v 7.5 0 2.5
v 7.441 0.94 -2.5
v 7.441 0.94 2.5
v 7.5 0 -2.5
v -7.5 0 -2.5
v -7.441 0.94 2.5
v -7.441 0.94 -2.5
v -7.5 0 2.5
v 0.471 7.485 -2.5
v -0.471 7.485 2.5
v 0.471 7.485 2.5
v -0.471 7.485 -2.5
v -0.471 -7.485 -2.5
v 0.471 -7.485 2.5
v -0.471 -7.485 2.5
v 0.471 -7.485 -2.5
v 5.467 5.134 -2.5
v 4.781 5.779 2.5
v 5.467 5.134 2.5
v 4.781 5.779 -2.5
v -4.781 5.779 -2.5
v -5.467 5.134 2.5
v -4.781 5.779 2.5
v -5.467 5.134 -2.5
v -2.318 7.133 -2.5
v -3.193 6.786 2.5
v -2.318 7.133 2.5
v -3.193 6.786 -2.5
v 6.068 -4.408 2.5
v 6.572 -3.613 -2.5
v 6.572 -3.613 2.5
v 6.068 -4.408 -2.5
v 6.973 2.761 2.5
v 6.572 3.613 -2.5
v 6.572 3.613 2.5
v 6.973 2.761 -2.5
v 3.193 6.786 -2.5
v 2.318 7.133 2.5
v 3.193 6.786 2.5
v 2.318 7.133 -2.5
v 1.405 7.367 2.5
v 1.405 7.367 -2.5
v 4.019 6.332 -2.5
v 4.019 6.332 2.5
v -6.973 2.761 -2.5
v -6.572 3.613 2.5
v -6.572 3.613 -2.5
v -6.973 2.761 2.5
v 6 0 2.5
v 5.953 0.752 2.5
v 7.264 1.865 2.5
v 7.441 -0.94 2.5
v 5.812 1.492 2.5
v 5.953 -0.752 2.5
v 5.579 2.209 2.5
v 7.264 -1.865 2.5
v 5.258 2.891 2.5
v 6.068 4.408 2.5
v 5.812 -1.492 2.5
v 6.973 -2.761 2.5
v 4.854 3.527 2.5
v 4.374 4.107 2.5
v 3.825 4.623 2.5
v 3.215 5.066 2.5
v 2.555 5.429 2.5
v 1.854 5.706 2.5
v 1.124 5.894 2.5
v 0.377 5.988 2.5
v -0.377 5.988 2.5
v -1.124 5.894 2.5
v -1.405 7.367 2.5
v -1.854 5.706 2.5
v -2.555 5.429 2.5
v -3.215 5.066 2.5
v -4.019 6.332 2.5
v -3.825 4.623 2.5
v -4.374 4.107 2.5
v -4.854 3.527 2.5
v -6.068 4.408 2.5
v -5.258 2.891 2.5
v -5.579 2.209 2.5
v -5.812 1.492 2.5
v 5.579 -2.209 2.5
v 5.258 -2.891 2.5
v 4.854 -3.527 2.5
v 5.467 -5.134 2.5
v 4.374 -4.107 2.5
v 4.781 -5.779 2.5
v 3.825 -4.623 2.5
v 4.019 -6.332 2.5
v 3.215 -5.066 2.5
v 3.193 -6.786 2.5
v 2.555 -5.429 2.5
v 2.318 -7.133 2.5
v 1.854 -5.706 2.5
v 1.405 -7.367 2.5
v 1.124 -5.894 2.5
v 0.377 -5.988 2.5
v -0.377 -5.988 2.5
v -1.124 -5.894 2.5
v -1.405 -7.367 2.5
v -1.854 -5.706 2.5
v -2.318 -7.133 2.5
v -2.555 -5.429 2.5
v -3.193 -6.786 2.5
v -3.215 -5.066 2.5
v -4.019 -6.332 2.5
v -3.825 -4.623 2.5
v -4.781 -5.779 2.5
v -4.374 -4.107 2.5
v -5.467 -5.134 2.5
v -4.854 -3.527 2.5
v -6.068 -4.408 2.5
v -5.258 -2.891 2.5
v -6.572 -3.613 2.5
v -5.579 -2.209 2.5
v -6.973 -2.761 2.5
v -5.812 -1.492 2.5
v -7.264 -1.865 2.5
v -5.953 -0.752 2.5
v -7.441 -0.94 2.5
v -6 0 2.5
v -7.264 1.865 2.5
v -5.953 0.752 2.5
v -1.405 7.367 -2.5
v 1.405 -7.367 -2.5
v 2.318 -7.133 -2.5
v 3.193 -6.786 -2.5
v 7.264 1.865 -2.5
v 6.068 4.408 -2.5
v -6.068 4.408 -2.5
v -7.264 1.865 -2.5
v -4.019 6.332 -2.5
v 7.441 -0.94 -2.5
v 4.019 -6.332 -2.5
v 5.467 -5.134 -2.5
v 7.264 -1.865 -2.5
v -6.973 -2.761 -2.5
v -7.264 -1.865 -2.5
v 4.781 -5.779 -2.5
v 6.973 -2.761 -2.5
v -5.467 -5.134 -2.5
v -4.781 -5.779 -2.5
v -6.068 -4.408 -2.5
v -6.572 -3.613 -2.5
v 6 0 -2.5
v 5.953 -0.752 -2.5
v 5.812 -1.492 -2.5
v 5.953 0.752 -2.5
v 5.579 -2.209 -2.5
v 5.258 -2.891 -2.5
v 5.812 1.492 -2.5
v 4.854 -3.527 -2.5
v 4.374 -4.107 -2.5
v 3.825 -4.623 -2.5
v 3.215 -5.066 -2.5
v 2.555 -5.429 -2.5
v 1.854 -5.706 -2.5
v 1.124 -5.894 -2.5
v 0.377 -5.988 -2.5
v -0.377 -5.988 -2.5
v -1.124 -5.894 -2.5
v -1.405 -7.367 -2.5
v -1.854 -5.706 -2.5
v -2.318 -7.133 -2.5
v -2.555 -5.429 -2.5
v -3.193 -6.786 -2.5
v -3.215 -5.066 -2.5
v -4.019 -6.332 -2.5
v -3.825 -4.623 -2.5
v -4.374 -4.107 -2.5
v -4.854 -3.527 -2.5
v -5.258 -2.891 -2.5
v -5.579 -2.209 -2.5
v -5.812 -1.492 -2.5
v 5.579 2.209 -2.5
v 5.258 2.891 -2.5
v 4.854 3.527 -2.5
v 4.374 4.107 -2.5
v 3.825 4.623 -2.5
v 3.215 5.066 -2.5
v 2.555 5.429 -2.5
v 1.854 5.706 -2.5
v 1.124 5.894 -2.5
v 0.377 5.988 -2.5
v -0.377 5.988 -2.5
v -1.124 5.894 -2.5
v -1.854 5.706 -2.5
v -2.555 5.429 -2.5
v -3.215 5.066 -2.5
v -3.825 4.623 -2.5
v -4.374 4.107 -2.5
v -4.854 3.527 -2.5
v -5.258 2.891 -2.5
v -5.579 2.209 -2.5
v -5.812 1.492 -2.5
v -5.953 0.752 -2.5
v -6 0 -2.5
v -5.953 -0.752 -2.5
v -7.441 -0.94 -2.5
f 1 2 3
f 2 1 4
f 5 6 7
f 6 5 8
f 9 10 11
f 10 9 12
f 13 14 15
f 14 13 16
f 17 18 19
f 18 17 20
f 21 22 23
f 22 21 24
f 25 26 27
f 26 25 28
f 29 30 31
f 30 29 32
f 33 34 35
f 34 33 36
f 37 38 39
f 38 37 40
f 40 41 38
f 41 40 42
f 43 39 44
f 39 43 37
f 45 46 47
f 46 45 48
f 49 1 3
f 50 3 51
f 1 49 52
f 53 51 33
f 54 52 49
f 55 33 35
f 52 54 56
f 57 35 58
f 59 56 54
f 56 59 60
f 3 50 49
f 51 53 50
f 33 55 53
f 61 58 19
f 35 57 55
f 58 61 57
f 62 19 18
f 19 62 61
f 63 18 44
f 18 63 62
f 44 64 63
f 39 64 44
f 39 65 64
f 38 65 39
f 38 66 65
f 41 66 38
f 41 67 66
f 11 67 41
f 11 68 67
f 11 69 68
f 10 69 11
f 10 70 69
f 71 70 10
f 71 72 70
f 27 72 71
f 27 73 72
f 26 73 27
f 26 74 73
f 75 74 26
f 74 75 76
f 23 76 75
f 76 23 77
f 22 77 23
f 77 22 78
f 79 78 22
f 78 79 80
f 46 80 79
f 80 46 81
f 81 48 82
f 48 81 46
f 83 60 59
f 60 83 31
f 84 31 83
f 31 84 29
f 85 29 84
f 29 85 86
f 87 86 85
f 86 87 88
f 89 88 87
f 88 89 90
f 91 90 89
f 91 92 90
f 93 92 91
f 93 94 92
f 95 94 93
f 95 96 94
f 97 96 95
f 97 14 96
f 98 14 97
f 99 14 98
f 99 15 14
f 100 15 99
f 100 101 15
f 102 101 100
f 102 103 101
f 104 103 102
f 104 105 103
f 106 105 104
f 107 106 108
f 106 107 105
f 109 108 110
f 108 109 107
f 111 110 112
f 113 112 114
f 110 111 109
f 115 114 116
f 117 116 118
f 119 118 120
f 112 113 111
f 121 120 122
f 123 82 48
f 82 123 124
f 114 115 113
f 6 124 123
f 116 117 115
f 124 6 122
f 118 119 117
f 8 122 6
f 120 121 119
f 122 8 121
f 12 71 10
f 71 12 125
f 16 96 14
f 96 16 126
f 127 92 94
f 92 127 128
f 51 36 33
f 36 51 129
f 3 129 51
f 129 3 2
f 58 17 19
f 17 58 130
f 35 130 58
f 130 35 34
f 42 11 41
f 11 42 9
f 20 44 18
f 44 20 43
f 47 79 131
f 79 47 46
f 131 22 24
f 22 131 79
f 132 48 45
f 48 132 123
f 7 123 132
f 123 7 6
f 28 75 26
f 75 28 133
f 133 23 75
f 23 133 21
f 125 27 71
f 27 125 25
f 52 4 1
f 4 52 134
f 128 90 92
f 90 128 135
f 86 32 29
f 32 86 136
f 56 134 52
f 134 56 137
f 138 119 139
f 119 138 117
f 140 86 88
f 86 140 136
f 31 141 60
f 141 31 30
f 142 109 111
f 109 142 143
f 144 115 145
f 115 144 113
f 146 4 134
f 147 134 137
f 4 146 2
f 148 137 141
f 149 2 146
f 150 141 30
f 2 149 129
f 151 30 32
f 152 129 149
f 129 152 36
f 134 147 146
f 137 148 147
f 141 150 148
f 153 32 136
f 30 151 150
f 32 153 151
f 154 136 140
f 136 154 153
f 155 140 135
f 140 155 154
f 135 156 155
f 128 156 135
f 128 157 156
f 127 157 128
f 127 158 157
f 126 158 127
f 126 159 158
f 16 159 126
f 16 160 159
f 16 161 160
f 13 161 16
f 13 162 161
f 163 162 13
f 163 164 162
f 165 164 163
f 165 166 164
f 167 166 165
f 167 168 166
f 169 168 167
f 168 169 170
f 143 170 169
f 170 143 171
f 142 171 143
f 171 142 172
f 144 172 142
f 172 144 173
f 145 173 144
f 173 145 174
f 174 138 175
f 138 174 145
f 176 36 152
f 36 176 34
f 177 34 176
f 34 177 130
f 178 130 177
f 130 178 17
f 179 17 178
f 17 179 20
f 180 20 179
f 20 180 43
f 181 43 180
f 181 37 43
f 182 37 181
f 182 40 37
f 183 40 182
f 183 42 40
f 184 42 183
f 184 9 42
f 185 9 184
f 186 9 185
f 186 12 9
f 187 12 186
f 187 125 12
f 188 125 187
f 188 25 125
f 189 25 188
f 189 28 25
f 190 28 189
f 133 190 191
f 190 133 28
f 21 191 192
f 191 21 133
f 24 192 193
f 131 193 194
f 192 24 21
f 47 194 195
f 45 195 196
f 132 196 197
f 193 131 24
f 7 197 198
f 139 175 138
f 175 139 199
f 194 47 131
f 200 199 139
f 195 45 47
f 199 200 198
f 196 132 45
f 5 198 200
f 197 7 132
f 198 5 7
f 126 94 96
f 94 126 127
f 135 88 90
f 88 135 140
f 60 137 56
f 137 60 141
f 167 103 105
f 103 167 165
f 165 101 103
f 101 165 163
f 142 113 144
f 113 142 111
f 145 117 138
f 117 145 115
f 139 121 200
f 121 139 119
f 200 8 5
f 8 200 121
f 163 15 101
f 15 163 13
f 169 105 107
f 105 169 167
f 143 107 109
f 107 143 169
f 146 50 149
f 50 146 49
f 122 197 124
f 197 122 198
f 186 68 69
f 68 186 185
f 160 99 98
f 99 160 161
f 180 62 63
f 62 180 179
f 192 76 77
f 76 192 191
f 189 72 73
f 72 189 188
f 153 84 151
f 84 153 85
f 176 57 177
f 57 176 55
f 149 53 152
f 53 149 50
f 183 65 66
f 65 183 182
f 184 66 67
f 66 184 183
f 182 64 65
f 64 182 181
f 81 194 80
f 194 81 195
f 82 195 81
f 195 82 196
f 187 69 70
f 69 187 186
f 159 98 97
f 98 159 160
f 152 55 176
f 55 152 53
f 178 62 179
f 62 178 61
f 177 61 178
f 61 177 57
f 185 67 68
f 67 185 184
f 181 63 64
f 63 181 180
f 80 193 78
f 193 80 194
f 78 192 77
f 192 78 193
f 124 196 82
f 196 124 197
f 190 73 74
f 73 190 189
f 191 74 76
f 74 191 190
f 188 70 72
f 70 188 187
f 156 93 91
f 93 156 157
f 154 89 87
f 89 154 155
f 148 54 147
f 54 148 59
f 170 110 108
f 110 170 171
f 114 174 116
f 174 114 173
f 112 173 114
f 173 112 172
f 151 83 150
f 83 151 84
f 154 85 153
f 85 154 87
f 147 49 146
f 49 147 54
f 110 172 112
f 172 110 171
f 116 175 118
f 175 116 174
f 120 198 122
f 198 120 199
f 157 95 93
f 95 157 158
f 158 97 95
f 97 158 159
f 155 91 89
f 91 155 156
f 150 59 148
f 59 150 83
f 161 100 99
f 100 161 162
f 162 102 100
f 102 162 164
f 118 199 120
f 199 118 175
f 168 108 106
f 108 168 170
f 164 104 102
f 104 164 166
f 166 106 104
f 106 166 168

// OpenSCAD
$fn = 50;


difference() {
	union() {
		translate(v = [0, 0, -2.5000000000]) {
			cylinder(h = 5, r = 7.5000000000);
		}
	}
	union() {
		translate(v = [0, 0, -100.0000000000]) {
			cylinder(h = 200, r = 6);
		}
	}
}
